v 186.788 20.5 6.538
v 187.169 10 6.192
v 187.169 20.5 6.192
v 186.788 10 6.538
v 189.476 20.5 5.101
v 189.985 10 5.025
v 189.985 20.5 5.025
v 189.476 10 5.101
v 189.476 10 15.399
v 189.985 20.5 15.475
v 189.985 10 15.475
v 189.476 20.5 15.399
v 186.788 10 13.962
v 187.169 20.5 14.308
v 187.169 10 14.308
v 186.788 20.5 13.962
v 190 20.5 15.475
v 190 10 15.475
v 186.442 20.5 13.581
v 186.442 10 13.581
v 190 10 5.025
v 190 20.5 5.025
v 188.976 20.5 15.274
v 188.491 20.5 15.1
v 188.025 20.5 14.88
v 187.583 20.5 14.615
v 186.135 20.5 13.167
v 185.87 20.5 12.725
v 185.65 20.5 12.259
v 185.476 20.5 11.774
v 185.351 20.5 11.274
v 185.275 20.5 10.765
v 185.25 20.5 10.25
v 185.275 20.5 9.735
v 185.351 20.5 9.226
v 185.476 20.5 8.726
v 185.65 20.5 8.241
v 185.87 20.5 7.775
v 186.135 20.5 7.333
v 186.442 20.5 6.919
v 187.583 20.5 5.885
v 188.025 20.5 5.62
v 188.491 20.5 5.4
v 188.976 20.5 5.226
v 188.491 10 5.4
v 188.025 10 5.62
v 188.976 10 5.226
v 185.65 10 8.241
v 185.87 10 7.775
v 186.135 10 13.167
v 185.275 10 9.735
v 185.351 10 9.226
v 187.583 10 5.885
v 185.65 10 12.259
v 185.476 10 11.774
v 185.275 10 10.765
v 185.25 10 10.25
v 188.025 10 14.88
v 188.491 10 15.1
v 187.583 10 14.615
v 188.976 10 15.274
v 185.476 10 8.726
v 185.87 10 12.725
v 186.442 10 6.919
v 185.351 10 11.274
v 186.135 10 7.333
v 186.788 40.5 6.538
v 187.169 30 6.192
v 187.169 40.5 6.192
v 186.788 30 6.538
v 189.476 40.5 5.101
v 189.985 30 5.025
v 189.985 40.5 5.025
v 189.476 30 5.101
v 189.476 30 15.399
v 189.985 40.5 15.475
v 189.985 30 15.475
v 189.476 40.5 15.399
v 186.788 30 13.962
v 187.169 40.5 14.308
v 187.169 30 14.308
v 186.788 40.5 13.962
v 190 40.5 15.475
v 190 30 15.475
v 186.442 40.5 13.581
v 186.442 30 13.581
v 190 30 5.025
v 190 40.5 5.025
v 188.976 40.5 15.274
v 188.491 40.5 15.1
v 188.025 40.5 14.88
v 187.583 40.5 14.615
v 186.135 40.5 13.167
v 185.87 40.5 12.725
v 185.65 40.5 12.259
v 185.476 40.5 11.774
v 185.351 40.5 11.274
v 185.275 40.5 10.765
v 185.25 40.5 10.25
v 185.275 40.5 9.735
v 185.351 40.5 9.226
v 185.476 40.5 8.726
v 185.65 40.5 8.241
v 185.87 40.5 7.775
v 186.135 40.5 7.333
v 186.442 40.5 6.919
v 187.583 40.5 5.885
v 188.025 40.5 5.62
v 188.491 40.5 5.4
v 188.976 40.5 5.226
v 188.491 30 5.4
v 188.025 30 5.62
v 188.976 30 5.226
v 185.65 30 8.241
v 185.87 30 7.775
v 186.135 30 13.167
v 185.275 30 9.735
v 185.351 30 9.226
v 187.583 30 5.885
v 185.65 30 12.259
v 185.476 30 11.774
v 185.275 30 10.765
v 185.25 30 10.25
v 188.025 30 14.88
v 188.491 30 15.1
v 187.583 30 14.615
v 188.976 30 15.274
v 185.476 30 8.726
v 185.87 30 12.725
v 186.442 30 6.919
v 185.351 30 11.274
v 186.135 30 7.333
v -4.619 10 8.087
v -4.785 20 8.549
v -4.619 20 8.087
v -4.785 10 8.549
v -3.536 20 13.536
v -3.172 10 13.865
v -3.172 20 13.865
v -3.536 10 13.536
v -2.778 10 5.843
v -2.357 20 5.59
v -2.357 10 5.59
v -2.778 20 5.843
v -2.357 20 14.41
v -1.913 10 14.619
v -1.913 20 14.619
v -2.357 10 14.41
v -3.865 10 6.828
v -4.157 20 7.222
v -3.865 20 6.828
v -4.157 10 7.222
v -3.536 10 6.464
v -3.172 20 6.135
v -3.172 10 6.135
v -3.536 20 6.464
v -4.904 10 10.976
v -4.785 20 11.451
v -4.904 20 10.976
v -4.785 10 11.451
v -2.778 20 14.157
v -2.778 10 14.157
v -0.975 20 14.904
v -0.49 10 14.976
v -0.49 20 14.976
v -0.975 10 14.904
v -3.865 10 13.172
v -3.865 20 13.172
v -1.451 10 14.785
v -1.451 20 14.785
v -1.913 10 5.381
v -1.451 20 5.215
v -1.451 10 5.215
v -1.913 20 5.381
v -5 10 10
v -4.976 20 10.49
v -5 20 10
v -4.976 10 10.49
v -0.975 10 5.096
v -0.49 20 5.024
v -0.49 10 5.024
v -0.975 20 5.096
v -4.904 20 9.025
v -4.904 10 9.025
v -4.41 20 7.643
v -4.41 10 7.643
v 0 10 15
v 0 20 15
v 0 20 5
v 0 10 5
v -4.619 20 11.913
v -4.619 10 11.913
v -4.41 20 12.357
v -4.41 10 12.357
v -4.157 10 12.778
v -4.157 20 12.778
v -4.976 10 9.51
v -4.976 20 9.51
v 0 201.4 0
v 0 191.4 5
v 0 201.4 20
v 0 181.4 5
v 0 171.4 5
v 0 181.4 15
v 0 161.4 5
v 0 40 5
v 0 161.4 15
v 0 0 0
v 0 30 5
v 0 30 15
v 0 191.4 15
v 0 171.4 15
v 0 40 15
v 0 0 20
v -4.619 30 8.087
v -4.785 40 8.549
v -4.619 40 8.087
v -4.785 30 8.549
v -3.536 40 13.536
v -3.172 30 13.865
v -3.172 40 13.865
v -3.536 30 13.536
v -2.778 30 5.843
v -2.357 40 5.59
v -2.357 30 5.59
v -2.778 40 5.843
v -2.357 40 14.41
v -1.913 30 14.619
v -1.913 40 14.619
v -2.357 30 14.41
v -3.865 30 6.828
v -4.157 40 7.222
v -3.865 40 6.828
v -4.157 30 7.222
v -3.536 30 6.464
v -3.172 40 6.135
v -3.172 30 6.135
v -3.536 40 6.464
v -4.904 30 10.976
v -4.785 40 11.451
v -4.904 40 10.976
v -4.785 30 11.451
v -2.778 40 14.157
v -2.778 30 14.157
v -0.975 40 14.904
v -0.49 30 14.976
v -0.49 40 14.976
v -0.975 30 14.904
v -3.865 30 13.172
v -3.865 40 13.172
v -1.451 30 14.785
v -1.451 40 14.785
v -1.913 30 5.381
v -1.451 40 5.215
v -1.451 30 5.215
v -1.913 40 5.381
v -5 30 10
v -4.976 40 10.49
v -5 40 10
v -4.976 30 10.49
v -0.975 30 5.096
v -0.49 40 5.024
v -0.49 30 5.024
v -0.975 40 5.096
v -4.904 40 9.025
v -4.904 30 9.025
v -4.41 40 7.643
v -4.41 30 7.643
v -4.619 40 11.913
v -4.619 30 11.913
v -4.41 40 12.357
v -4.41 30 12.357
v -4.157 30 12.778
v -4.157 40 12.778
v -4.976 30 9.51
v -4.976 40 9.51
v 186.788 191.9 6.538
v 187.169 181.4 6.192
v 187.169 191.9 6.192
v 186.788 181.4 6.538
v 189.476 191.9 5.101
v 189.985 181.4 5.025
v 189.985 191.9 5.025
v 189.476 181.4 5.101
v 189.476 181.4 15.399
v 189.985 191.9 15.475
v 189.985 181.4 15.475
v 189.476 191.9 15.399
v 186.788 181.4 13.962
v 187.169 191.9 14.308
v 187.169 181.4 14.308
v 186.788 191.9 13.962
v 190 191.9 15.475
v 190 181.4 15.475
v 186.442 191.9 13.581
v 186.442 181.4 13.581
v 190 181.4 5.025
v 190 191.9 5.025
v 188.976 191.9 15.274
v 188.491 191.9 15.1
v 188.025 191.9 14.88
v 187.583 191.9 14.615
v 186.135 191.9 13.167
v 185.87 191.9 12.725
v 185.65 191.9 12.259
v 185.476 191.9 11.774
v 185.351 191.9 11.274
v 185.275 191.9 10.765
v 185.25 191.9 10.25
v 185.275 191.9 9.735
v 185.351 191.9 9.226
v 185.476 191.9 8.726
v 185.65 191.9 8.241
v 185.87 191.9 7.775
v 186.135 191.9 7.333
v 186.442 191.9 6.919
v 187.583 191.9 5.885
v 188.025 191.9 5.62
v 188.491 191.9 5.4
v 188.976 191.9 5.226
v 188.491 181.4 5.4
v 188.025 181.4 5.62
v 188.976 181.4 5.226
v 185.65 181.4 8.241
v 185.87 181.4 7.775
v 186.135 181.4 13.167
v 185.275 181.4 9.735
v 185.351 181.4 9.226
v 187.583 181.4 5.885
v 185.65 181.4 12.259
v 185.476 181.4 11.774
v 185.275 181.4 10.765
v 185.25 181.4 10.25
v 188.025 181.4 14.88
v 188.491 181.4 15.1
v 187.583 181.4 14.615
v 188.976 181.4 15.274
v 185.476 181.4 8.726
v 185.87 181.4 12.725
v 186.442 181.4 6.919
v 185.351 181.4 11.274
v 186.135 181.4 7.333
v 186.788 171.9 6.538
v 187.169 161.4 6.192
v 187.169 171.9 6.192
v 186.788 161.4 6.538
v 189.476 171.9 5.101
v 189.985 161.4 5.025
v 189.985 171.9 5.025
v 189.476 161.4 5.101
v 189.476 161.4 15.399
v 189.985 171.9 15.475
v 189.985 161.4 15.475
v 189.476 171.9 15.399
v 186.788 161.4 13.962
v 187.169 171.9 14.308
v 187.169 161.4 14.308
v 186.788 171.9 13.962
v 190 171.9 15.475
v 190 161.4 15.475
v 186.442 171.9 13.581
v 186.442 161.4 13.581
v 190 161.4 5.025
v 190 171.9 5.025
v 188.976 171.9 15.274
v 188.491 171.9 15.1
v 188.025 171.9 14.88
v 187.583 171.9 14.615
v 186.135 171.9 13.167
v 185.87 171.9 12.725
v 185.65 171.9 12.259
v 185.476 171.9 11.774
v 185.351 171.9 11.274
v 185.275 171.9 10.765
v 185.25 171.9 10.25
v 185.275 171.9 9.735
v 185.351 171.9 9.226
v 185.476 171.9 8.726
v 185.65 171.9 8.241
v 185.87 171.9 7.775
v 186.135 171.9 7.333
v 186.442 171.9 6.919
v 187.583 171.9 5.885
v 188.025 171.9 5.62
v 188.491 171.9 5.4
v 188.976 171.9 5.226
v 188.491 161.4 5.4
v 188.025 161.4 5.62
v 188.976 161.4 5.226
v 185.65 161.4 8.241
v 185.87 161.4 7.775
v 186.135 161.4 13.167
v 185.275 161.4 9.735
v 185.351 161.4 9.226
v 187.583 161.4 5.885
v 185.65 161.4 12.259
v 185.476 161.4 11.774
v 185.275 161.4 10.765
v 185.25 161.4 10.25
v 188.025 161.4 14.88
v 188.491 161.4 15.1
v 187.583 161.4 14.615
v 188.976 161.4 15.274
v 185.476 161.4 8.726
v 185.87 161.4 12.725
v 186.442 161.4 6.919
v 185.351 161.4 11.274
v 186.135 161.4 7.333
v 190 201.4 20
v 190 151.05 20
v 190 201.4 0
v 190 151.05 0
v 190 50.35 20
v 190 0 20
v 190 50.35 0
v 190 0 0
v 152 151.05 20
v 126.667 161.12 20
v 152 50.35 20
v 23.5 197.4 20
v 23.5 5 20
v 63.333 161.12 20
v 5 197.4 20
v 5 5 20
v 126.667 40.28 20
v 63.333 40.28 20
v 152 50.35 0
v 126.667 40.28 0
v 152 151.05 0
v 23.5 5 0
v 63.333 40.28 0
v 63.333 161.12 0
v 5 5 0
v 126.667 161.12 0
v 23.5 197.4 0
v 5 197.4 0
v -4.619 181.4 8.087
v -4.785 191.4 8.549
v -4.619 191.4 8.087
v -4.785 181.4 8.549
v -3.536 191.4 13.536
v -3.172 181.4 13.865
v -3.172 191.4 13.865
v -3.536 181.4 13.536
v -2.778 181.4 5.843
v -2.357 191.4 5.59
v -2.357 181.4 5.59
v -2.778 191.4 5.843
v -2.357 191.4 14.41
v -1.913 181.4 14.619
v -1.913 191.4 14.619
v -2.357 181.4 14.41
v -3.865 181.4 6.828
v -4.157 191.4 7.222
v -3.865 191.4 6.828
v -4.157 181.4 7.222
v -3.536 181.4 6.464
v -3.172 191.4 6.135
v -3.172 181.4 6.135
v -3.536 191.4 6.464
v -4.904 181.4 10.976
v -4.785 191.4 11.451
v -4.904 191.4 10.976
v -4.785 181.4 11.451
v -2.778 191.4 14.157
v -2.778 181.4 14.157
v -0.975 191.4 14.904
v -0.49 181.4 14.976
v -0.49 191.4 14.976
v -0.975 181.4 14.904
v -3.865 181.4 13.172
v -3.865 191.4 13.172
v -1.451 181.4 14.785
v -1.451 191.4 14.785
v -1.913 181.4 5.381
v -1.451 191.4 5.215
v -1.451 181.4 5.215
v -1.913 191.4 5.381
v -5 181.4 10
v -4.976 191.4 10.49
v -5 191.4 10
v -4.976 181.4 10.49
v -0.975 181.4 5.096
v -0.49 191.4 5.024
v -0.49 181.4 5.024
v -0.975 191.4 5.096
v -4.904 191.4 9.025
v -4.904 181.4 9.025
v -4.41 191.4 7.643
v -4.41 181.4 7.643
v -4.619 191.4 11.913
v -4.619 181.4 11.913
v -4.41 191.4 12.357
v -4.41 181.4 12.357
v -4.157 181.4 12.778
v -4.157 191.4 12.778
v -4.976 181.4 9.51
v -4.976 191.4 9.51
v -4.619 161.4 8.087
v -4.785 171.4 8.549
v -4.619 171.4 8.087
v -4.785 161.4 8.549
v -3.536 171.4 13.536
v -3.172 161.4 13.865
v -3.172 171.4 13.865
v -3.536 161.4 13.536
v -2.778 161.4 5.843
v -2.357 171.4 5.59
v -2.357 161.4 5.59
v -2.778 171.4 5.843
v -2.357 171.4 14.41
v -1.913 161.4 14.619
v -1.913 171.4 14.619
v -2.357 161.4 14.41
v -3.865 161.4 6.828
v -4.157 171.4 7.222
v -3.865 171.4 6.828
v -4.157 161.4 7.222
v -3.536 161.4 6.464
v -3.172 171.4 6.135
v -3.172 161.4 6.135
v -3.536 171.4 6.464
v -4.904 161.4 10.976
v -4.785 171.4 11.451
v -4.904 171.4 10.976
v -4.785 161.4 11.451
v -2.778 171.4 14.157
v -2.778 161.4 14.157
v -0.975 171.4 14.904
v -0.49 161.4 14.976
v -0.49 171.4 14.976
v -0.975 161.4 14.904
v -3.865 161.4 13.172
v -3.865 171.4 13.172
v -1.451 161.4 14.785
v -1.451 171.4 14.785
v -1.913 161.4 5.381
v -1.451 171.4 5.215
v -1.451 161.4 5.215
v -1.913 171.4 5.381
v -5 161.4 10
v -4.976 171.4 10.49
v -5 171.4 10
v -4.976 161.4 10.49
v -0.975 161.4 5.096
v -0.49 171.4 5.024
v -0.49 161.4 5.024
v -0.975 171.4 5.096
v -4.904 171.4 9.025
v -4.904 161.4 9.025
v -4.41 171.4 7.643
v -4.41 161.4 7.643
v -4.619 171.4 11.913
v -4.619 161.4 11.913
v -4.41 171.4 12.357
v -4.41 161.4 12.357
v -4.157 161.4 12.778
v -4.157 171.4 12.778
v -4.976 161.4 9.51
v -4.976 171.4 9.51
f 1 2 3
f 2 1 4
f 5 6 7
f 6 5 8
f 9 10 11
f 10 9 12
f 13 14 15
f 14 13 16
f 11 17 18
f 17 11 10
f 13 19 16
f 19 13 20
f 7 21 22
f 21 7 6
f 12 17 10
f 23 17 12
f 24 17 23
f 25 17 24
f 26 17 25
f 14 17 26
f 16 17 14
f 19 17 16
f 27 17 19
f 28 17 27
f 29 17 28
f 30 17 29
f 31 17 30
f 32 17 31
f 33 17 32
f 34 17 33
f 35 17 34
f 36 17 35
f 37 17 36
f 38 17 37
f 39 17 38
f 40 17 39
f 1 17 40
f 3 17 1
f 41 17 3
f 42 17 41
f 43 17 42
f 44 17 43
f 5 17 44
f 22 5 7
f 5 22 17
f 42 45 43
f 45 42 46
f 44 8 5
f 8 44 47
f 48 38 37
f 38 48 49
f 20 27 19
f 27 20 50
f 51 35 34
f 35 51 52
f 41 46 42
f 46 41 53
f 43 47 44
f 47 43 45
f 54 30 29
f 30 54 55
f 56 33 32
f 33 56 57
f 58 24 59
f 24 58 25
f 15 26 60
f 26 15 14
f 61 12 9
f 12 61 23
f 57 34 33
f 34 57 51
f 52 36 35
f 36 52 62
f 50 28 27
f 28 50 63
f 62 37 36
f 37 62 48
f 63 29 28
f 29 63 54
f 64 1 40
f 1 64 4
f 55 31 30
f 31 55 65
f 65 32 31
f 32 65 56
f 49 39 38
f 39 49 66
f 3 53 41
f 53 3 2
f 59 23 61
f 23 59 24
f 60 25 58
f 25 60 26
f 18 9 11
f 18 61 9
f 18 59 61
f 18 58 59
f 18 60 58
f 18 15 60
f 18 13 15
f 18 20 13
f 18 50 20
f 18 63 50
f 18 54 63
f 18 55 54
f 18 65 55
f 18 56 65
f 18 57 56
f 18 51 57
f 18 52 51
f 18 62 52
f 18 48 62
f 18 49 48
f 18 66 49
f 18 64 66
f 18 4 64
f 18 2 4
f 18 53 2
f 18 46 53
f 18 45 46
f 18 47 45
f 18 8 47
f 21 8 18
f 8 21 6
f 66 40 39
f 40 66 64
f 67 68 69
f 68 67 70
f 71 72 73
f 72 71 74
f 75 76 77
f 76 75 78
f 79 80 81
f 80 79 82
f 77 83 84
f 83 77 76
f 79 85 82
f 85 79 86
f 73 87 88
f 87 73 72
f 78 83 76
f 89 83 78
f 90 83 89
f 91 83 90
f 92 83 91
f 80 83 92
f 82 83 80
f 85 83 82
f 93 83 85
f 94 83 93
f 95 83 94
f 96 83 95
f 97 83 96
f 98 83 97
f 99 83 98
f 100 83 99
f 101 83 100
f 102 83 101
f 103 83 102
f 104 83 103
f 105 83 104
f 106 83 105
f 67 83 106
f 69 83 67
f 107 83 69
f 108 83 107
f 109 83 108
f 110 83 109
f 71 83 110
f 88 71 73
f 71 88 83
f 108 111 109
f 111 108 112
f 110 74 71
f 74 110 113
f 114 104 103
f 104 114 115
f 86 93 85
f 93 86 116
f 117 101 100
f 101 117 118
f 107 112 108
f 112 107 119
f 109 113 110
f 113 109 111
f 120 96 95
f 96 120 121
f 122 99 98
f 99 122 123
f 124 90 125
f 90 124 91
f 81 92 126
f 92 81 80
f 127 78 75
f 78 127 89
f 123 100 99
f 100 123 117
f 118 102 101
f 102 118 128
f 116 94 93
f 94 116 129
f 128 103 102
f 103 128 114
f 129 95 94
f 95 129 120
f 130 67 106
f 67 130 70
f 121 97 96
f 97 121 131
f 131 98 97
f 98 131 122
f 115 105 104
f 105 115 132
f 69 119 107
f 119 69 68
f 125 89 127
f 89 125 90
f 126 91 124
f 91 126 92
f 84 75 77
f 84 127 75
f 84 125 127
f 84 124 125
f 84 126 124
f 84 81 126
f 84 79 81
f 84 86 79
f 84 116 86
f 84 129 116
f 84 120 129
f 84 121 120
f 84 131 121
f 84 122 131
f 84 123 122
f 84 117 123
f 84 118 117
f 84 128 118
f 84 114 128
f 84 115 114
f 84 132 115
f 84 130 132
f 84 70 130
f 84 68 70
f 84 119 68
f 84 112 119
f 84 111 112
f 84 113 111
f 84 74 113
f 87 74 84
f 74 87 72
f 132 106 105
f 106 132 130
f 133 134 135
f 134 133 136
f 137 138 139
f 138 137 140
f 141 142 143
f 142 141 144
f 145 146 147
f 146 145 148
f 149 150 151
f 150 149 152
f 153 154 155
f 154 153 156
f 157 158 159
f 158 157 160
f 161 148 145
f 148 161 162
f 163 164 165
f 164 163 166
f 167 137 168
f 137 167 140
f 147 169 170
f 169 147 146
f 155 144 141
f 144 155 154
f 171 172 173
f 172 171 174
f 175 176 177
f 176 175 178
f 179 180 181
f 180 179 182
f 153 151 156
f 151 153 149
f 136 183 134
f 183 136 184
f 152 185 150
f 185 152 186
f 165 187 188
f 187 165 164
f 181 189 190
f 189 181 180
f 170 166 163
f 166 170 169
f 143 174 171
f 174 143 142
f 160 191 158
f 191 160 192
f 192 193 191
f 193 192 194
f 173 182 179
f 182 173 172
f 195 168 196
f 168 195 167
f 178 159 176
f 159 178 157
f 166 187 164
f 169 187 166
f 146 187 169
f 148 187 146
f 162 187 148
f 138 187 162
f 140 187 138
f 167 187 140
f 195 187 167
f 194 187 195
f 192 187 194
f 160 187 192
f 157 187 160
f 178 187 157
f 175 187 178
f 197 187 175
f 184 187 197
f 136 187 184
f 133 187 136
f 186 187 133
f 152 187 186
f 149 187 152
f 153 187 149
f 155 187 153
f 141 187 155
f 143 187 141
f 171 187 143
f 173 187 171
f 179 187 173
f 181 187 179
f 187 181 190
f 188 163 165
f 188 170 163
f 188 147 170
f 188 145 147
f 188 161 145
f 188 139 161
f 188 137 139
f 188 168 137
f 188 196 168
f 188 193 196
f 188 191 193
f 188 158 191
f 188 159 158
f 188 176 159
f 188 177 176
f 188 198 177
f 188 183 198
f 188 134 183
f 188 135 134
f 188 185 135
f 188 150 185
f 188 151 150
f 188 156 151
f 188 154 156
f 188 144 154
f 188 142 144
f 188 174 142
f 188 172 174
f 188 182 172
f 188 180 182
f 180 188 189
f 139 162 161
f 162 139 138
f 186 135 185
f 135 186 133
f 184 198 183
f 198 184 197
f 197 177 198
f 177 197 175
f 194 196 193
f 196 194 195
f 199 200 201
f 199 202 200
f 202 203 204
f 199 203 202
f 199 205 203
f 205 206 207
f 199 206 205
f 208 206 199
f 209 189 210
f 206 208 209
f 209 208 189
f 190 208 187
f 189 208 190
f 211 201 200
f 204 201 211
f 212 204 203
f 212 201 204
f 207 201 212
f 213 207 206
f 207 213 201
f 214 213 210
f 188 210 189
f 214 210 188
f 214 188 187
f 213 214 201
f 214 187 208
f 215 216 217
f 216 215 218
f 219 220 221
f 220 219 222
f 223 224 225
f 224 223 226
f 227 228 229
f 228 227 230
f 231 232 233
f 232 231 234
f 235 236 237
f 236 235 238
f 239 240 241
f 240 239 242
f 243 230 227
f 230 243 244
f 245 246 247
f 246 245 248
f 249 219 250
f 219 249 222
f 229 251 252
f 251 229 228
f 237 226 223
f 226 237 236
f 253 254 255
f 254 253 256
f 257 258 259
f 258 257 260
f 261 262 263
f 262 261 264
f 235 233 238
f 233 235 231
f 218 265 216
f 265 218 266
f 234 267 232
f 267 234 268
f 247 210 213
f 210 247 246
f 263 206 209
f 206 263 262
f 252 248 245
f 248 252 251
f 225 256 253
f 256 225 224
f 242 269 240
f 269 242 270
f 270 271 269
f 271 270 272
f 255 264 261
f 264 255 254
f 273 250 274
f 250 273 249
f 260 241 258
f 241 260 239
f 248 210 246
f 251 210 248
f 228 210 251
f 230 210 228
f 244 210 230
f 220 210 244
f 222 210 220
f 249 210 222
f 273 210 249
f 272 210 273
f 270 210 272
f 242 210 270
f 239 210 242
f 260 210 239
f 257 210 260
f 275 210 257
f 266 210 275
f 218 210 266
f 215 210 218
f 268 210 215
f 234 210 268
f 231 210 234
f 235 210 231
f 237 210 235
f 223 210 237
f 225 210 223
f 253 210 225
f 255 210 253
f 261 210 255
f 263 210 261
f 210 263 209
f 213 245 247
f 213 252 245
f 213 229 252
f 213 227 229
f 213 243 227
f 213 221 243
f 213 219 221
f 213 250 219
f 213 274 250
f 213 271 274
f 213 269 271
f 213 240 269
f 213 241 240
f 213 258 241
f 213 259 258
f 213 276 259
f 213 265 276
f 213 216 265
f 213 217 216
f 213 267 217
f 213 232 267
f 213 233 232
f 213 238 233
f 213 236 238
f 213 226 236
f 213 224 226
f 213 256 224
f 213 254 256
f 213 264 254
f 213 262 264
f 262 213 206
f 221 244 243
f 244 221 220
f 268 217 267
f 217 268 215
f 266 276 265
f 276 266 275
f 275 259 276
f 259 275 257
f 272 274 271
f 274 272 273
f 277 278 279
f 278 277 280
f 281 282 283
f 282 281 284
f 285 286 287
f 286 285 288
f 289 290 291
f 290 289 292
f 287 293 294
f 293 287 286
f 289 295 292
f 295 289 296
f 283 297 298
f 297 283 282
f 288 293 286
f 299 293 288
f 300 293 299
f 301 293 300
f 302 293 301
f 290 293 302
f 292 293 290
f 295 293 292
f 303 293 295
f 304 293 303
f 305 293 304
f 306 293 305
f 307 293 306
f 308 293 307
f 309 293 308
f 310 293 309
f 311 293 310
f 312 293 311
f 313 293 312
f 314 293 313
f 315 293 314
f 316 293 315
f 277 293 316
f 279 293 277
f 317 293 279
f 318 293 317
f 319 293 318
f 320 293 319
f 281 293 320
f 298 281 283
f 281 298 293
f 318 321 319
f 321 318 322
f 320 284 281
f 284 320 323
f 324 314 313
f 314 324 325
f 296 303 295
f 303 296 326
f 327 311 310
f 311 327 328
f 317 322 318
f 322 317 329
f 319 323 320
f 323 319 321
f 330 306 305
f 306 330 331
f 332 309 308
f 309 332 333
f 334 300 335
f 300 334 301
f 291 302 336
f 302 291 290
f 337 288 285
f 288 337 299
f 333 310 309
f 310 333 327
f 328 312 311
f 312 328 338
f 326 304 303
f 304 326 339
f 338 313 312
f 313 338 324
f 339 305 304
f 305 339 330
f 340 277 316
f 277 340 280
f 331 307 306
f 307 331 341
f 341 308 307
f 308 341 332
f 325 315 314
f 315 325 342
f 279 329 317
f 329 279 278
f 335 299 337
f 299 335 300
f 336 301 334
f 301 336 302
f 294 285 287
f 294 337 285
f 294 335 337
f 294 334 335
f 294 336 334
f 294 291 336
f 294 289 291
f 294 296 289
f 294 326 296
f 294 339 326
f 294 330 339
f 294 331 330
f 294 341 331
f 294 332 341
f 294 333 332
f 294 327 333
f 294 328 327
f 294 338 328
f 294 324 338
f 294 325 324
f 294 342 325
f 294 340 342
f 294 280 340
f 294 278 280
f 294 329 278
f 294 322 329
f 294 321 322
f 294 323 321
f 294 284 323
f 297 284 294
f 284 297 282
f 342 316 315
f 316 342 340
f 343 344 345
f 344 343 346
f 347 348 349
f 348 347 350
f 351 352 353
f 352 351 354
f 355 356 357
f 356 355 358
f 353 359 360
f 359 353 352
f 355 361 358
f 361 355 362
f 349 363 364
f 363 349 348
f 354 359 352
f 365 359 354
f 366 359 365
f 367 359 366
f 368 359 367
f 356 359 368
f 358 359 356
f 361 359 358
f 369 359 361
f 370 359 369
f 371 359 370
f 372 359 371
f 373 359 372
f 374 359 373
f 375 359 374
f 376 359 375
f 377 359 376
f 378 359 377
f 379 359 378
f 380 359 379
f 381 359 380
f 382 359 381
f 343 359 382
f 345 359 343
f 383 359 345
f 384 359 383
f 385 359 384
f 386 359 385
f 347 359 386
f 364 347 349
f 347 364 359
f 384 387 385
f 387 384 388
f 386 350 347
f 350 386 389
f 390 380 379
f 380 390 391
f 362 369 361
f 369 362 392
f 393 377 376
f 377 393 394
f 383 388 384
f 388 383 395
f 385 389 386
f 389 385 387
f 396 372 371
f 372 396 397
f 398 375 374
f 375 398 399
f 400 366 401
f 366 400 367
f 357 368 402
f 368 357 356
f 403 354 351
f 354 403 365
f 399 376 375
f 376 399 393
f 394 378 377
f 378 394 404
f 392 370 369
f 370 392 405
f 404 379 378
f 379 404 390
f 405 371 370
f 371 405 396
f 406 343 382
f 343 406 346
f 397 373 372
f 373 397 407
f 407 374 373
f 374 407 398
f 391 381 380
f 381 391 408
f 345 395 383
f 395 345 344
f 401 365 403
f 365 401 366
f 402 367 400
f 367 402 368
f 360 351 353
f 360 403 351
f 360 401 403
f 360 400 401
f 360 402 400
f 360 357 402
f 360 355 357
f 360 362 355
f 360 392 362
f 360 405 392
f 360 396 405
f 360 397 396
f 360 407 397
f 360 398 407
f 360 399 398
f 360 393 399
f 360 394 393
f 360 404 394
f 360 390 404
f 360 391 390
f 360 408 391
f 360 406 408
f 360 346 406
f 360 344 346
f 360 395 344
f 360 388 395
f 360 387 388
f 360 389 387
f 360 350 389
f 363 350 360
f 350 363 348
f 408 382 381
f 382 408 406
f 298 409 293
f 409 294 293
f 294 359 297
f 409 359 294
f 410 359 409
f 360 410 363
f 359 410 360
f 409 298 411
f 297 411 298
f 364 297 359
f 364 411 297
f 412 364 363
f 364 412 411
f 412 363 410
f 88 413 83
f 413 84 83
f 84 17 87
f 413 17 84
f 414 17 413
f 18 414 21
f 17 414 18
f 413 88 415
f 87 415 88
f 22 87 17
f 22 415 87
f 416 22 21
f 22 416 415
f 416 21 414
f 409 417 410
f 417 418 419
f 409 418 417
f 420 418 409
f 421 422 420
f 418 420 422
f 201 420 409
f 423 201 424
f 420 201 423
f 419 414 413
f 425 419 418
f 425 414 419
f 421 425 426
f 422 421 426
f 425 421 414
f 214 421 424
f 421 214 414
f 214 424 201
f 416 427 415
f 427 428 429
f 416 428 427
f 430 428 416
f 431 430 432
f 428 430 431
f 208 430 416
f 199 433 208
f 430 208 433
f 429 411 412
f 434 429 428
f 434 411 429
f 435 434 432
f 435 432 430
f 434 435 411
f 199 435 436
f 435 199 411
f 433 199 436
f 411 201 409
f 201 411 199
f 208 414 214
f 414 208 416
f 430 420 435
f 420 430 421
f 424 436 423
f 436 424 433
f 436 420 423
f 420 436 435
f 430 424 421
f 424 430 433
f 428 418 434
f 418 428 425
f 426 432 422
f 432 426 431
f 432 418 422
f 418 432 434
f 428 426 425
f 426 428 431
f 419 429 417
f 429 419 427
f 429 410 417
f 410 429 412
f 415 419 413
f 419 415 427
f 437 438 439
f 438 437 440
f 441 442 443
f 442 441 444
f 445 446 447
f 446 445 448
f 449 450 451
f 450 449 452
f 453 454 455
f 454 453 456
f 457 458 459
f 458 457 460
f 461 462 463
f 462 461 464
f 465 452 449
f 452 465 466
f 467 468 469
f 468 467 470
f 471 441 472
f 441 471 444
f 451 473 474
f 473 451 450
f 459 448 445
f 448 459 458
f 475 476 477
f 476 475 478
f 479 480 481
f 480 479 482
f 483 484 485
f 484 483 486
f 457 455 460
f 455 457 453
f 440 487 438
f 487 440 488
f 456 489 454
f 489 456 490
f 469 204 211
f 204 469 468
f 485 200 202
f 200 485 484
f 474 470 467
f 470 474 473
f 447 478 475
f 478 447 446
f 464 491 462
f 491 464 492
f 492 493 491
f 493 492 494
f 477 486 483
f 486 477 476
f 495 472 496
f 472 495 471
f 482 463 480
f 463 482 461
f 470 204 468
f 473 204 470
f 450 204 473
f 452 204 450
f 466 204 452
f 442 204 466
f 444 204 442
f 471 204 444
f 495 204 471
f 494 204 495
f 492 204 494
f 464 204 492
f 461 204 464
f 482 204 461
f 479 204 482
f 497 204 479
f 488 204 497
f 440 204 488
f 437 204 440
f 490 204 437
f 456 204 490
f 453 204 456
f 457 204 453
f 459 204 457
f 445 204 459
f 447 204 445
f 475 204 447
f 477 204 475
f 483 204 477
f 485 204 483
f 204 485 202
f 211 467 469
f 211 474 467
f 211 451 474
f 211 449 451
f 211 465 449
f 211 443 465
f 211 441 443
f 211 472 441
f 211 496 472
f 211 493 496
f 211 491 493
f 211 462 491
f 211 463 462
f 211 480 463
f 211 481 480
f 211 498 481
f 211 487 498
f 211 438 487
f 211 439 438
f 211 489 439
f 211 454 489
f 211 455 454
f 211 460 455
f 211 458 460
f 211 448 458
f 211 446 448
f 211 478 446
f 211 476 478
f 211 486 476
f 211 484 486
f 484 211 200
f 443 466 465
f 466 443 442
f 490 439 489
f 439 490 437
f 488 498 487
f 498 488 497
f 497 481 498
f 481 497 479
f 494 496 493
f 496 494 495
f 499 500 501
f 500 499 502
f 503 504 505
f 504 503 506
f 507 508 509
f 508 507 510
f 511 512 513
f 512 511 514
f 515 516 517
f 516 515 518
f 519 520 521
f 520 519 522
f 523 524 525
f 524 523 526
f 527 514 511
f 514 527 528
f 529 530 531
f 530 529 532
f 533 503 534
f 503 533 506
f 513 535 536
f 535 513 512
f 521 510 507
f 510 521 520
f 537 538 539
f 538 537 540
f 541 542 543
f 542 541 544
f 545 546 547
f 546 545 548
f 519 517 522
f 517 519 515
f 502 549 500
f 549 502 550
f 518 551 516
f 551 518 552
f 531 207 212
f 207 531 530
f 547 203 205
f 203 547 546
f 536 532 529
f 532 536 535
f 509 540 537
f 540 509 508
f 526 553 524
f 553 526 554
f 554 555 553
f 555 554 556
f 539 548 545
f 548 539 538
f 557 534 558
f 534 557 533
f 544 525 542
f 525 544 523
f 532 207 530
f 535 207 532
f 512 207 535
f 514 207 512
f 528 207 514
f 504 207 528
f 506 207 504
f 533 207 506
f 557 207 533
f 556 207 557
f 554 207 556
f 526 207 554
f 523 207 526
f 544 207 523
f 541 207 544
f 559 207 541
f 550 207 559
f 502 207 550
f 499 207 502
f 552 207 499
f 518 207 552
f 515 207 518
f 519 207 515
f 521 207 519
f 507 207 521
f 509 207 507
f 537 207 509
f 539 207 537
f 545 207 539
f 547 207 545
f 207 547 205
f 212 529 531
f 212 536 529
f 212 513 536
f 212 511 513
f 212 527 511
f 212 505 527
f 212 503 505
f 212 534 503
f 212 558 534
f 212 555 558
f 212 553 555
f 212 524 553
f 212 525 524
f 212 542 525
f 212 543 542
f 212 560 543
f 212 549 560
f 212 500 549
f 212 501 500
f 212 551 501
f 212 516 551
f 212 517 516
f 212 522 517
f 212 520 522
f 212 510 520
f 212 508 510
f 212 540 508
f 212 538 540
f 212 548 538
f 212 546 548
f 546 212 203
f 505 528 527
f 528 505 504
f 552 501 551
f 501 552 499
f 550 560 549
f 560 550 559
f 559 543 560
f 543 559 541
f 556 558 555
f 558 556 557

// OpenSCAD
$fn = 64;

// ============================================================================
// dimensions
// ============================================================================

shelf_depth = 18;
shelf_width = 191.4;
shelf_margin = 5;
box_height = 25;


outer_height = 190; // altura
outer_width = shelf_width + (shelf_margin*2); // largura
outer_depth = 20; // espessura


pin_diameter = outer_depth / 2;
pin_height = 5;
pin_gap = 0.5;

// =========================================================================
// Pins
// =========================================================================

module round_pin() {
    diameter = pin_diameter;
    difference() {
        translate([diameter/2,0,0]) rotate([0,90,90]) cylinder(d = diameter, h = diameter);
        
        translate([0,0,-diameter/2]) cube([diameter, diameter, diameter/2]);
    }
}


module round_pin_hole() {
    pd = pin_diameter + pin_gap;    
    difference() {
        translate([pd/2,0,0]) rotate([0,90,90]) cylinder(d=pd, h=pd);
        translate([0,0,-(pd/2)]) cube([pd, pd, pd/2]);
    }    
}


// =========================================================================
// Test plates
// =========================================================================

module test_plate() {

    plate_width = 60;
    plate_depth = 20;

    difference() {
        union(){
            translate([0,0,0]) cube([plate_width, plate_depth, 10], false);
            translate([10, plate_depth/2, 10]) round_pin();
            translate([10+pin_diameter+20, plate_depth/2, 10]) round_pin();
        }

        translate([10, plate_depth/2, 0]) round_pin_hole();
        translate([10+pin_diameter+20, plate_depth/2, 0]) round_pin_hole();
    }
}


module test_shelf_hole() {
    height = shelf_depth+(shelf_margin*2);
    dx = shelf_depth + pin_gap;
    dy = shelf_width + (pin_gap*2);
    difference() {
    translate([0,0,0]) cube([height, outer_width, outer_depth]);
    // board hole
    translate([shelf_margin, shelf_margin,0]) cube([dx, dy, outer_depth]);
    }
}

// =========================================================================
// Body
// =========================================================================

module body() {
   bg_width = outer_width * 0.6;
   // shelf board hole size
   dx = shelf_depth + pin_gap;
   dy = shelf_width + (pin_gap*2);  

   // pins
   pin_z = (outer_depth /2) - (pin_diameter/2);
   pin_y_distance = outer_depth * 1.5; 
   pin_y =outer_depth/2; 
   union() { 
        difference() {
            // main body
            translate([0,0,0]) cube([outer_height, outer_width, outer_depth]);
            // board hole
            translate([shelf_margin, shelf_margin,0]) cube([dx, dy, outer_depth]);
           
            // center hole 
            third_height = outer_height /3;
            fifth_width = outer_width /5;
            translate([third_height, fifth_width,0]) cube([third_height, fifth_width*3, outer_depth]);
            
            // bottom hole
            fifth_height = outer_height/5;
            fourth_width = outer_width /4;
            translate([fifth_height*4, fourth_width,0]) cube([third_height, fourth_width*2, outer_depth]);
            
            // pin holes - height,0 corner
            ph_x = outer_height+pin_gap;
            translate([ph_x, pin_y, pin_z]) rotate([0,-90,0]) round_pin_hole();          
            translate([ph_x, pin_y_distance, pin_z]) rotate([0,-90,0]) round_pin_hole();
            
            // pin holes - height,width corner            
            translate([ph_x, outer_width-pin_y-pin_diameter, pin_z]) rotate([0,-90,0]) round_pin_hole();
            translate([ph_x, outer_width-pin_y-pin_y_distance, pin_z]) rotate([0,-90,0]) round_pin_hole();
            
            
        }
        // top pins - 0,0 corner
        translate([0, pin_y, pin_z]) rotate([0,-90,0]) round_pin();
        translate([0, pin_y_distance, pin_z]) rotate([0,-90,0]) round_pin();
        
        // top pins - 0, outer_width corner
        translate([0, outer_width-pin_y-pin_diameter, pin_z]) rotate([0,-90,0]) round_pin();
        translate([0, outer_width-pin_y-pin_y_distance, pin_z]) rotate([0,-90,0]) round_pin();
    }
}

module pinout() {
    union() {
        body();
        translate([0, outer_depth, 20]) rotate([0,0,90]) round_pin();    
    }
}

//test_shelf_hole();
body();
